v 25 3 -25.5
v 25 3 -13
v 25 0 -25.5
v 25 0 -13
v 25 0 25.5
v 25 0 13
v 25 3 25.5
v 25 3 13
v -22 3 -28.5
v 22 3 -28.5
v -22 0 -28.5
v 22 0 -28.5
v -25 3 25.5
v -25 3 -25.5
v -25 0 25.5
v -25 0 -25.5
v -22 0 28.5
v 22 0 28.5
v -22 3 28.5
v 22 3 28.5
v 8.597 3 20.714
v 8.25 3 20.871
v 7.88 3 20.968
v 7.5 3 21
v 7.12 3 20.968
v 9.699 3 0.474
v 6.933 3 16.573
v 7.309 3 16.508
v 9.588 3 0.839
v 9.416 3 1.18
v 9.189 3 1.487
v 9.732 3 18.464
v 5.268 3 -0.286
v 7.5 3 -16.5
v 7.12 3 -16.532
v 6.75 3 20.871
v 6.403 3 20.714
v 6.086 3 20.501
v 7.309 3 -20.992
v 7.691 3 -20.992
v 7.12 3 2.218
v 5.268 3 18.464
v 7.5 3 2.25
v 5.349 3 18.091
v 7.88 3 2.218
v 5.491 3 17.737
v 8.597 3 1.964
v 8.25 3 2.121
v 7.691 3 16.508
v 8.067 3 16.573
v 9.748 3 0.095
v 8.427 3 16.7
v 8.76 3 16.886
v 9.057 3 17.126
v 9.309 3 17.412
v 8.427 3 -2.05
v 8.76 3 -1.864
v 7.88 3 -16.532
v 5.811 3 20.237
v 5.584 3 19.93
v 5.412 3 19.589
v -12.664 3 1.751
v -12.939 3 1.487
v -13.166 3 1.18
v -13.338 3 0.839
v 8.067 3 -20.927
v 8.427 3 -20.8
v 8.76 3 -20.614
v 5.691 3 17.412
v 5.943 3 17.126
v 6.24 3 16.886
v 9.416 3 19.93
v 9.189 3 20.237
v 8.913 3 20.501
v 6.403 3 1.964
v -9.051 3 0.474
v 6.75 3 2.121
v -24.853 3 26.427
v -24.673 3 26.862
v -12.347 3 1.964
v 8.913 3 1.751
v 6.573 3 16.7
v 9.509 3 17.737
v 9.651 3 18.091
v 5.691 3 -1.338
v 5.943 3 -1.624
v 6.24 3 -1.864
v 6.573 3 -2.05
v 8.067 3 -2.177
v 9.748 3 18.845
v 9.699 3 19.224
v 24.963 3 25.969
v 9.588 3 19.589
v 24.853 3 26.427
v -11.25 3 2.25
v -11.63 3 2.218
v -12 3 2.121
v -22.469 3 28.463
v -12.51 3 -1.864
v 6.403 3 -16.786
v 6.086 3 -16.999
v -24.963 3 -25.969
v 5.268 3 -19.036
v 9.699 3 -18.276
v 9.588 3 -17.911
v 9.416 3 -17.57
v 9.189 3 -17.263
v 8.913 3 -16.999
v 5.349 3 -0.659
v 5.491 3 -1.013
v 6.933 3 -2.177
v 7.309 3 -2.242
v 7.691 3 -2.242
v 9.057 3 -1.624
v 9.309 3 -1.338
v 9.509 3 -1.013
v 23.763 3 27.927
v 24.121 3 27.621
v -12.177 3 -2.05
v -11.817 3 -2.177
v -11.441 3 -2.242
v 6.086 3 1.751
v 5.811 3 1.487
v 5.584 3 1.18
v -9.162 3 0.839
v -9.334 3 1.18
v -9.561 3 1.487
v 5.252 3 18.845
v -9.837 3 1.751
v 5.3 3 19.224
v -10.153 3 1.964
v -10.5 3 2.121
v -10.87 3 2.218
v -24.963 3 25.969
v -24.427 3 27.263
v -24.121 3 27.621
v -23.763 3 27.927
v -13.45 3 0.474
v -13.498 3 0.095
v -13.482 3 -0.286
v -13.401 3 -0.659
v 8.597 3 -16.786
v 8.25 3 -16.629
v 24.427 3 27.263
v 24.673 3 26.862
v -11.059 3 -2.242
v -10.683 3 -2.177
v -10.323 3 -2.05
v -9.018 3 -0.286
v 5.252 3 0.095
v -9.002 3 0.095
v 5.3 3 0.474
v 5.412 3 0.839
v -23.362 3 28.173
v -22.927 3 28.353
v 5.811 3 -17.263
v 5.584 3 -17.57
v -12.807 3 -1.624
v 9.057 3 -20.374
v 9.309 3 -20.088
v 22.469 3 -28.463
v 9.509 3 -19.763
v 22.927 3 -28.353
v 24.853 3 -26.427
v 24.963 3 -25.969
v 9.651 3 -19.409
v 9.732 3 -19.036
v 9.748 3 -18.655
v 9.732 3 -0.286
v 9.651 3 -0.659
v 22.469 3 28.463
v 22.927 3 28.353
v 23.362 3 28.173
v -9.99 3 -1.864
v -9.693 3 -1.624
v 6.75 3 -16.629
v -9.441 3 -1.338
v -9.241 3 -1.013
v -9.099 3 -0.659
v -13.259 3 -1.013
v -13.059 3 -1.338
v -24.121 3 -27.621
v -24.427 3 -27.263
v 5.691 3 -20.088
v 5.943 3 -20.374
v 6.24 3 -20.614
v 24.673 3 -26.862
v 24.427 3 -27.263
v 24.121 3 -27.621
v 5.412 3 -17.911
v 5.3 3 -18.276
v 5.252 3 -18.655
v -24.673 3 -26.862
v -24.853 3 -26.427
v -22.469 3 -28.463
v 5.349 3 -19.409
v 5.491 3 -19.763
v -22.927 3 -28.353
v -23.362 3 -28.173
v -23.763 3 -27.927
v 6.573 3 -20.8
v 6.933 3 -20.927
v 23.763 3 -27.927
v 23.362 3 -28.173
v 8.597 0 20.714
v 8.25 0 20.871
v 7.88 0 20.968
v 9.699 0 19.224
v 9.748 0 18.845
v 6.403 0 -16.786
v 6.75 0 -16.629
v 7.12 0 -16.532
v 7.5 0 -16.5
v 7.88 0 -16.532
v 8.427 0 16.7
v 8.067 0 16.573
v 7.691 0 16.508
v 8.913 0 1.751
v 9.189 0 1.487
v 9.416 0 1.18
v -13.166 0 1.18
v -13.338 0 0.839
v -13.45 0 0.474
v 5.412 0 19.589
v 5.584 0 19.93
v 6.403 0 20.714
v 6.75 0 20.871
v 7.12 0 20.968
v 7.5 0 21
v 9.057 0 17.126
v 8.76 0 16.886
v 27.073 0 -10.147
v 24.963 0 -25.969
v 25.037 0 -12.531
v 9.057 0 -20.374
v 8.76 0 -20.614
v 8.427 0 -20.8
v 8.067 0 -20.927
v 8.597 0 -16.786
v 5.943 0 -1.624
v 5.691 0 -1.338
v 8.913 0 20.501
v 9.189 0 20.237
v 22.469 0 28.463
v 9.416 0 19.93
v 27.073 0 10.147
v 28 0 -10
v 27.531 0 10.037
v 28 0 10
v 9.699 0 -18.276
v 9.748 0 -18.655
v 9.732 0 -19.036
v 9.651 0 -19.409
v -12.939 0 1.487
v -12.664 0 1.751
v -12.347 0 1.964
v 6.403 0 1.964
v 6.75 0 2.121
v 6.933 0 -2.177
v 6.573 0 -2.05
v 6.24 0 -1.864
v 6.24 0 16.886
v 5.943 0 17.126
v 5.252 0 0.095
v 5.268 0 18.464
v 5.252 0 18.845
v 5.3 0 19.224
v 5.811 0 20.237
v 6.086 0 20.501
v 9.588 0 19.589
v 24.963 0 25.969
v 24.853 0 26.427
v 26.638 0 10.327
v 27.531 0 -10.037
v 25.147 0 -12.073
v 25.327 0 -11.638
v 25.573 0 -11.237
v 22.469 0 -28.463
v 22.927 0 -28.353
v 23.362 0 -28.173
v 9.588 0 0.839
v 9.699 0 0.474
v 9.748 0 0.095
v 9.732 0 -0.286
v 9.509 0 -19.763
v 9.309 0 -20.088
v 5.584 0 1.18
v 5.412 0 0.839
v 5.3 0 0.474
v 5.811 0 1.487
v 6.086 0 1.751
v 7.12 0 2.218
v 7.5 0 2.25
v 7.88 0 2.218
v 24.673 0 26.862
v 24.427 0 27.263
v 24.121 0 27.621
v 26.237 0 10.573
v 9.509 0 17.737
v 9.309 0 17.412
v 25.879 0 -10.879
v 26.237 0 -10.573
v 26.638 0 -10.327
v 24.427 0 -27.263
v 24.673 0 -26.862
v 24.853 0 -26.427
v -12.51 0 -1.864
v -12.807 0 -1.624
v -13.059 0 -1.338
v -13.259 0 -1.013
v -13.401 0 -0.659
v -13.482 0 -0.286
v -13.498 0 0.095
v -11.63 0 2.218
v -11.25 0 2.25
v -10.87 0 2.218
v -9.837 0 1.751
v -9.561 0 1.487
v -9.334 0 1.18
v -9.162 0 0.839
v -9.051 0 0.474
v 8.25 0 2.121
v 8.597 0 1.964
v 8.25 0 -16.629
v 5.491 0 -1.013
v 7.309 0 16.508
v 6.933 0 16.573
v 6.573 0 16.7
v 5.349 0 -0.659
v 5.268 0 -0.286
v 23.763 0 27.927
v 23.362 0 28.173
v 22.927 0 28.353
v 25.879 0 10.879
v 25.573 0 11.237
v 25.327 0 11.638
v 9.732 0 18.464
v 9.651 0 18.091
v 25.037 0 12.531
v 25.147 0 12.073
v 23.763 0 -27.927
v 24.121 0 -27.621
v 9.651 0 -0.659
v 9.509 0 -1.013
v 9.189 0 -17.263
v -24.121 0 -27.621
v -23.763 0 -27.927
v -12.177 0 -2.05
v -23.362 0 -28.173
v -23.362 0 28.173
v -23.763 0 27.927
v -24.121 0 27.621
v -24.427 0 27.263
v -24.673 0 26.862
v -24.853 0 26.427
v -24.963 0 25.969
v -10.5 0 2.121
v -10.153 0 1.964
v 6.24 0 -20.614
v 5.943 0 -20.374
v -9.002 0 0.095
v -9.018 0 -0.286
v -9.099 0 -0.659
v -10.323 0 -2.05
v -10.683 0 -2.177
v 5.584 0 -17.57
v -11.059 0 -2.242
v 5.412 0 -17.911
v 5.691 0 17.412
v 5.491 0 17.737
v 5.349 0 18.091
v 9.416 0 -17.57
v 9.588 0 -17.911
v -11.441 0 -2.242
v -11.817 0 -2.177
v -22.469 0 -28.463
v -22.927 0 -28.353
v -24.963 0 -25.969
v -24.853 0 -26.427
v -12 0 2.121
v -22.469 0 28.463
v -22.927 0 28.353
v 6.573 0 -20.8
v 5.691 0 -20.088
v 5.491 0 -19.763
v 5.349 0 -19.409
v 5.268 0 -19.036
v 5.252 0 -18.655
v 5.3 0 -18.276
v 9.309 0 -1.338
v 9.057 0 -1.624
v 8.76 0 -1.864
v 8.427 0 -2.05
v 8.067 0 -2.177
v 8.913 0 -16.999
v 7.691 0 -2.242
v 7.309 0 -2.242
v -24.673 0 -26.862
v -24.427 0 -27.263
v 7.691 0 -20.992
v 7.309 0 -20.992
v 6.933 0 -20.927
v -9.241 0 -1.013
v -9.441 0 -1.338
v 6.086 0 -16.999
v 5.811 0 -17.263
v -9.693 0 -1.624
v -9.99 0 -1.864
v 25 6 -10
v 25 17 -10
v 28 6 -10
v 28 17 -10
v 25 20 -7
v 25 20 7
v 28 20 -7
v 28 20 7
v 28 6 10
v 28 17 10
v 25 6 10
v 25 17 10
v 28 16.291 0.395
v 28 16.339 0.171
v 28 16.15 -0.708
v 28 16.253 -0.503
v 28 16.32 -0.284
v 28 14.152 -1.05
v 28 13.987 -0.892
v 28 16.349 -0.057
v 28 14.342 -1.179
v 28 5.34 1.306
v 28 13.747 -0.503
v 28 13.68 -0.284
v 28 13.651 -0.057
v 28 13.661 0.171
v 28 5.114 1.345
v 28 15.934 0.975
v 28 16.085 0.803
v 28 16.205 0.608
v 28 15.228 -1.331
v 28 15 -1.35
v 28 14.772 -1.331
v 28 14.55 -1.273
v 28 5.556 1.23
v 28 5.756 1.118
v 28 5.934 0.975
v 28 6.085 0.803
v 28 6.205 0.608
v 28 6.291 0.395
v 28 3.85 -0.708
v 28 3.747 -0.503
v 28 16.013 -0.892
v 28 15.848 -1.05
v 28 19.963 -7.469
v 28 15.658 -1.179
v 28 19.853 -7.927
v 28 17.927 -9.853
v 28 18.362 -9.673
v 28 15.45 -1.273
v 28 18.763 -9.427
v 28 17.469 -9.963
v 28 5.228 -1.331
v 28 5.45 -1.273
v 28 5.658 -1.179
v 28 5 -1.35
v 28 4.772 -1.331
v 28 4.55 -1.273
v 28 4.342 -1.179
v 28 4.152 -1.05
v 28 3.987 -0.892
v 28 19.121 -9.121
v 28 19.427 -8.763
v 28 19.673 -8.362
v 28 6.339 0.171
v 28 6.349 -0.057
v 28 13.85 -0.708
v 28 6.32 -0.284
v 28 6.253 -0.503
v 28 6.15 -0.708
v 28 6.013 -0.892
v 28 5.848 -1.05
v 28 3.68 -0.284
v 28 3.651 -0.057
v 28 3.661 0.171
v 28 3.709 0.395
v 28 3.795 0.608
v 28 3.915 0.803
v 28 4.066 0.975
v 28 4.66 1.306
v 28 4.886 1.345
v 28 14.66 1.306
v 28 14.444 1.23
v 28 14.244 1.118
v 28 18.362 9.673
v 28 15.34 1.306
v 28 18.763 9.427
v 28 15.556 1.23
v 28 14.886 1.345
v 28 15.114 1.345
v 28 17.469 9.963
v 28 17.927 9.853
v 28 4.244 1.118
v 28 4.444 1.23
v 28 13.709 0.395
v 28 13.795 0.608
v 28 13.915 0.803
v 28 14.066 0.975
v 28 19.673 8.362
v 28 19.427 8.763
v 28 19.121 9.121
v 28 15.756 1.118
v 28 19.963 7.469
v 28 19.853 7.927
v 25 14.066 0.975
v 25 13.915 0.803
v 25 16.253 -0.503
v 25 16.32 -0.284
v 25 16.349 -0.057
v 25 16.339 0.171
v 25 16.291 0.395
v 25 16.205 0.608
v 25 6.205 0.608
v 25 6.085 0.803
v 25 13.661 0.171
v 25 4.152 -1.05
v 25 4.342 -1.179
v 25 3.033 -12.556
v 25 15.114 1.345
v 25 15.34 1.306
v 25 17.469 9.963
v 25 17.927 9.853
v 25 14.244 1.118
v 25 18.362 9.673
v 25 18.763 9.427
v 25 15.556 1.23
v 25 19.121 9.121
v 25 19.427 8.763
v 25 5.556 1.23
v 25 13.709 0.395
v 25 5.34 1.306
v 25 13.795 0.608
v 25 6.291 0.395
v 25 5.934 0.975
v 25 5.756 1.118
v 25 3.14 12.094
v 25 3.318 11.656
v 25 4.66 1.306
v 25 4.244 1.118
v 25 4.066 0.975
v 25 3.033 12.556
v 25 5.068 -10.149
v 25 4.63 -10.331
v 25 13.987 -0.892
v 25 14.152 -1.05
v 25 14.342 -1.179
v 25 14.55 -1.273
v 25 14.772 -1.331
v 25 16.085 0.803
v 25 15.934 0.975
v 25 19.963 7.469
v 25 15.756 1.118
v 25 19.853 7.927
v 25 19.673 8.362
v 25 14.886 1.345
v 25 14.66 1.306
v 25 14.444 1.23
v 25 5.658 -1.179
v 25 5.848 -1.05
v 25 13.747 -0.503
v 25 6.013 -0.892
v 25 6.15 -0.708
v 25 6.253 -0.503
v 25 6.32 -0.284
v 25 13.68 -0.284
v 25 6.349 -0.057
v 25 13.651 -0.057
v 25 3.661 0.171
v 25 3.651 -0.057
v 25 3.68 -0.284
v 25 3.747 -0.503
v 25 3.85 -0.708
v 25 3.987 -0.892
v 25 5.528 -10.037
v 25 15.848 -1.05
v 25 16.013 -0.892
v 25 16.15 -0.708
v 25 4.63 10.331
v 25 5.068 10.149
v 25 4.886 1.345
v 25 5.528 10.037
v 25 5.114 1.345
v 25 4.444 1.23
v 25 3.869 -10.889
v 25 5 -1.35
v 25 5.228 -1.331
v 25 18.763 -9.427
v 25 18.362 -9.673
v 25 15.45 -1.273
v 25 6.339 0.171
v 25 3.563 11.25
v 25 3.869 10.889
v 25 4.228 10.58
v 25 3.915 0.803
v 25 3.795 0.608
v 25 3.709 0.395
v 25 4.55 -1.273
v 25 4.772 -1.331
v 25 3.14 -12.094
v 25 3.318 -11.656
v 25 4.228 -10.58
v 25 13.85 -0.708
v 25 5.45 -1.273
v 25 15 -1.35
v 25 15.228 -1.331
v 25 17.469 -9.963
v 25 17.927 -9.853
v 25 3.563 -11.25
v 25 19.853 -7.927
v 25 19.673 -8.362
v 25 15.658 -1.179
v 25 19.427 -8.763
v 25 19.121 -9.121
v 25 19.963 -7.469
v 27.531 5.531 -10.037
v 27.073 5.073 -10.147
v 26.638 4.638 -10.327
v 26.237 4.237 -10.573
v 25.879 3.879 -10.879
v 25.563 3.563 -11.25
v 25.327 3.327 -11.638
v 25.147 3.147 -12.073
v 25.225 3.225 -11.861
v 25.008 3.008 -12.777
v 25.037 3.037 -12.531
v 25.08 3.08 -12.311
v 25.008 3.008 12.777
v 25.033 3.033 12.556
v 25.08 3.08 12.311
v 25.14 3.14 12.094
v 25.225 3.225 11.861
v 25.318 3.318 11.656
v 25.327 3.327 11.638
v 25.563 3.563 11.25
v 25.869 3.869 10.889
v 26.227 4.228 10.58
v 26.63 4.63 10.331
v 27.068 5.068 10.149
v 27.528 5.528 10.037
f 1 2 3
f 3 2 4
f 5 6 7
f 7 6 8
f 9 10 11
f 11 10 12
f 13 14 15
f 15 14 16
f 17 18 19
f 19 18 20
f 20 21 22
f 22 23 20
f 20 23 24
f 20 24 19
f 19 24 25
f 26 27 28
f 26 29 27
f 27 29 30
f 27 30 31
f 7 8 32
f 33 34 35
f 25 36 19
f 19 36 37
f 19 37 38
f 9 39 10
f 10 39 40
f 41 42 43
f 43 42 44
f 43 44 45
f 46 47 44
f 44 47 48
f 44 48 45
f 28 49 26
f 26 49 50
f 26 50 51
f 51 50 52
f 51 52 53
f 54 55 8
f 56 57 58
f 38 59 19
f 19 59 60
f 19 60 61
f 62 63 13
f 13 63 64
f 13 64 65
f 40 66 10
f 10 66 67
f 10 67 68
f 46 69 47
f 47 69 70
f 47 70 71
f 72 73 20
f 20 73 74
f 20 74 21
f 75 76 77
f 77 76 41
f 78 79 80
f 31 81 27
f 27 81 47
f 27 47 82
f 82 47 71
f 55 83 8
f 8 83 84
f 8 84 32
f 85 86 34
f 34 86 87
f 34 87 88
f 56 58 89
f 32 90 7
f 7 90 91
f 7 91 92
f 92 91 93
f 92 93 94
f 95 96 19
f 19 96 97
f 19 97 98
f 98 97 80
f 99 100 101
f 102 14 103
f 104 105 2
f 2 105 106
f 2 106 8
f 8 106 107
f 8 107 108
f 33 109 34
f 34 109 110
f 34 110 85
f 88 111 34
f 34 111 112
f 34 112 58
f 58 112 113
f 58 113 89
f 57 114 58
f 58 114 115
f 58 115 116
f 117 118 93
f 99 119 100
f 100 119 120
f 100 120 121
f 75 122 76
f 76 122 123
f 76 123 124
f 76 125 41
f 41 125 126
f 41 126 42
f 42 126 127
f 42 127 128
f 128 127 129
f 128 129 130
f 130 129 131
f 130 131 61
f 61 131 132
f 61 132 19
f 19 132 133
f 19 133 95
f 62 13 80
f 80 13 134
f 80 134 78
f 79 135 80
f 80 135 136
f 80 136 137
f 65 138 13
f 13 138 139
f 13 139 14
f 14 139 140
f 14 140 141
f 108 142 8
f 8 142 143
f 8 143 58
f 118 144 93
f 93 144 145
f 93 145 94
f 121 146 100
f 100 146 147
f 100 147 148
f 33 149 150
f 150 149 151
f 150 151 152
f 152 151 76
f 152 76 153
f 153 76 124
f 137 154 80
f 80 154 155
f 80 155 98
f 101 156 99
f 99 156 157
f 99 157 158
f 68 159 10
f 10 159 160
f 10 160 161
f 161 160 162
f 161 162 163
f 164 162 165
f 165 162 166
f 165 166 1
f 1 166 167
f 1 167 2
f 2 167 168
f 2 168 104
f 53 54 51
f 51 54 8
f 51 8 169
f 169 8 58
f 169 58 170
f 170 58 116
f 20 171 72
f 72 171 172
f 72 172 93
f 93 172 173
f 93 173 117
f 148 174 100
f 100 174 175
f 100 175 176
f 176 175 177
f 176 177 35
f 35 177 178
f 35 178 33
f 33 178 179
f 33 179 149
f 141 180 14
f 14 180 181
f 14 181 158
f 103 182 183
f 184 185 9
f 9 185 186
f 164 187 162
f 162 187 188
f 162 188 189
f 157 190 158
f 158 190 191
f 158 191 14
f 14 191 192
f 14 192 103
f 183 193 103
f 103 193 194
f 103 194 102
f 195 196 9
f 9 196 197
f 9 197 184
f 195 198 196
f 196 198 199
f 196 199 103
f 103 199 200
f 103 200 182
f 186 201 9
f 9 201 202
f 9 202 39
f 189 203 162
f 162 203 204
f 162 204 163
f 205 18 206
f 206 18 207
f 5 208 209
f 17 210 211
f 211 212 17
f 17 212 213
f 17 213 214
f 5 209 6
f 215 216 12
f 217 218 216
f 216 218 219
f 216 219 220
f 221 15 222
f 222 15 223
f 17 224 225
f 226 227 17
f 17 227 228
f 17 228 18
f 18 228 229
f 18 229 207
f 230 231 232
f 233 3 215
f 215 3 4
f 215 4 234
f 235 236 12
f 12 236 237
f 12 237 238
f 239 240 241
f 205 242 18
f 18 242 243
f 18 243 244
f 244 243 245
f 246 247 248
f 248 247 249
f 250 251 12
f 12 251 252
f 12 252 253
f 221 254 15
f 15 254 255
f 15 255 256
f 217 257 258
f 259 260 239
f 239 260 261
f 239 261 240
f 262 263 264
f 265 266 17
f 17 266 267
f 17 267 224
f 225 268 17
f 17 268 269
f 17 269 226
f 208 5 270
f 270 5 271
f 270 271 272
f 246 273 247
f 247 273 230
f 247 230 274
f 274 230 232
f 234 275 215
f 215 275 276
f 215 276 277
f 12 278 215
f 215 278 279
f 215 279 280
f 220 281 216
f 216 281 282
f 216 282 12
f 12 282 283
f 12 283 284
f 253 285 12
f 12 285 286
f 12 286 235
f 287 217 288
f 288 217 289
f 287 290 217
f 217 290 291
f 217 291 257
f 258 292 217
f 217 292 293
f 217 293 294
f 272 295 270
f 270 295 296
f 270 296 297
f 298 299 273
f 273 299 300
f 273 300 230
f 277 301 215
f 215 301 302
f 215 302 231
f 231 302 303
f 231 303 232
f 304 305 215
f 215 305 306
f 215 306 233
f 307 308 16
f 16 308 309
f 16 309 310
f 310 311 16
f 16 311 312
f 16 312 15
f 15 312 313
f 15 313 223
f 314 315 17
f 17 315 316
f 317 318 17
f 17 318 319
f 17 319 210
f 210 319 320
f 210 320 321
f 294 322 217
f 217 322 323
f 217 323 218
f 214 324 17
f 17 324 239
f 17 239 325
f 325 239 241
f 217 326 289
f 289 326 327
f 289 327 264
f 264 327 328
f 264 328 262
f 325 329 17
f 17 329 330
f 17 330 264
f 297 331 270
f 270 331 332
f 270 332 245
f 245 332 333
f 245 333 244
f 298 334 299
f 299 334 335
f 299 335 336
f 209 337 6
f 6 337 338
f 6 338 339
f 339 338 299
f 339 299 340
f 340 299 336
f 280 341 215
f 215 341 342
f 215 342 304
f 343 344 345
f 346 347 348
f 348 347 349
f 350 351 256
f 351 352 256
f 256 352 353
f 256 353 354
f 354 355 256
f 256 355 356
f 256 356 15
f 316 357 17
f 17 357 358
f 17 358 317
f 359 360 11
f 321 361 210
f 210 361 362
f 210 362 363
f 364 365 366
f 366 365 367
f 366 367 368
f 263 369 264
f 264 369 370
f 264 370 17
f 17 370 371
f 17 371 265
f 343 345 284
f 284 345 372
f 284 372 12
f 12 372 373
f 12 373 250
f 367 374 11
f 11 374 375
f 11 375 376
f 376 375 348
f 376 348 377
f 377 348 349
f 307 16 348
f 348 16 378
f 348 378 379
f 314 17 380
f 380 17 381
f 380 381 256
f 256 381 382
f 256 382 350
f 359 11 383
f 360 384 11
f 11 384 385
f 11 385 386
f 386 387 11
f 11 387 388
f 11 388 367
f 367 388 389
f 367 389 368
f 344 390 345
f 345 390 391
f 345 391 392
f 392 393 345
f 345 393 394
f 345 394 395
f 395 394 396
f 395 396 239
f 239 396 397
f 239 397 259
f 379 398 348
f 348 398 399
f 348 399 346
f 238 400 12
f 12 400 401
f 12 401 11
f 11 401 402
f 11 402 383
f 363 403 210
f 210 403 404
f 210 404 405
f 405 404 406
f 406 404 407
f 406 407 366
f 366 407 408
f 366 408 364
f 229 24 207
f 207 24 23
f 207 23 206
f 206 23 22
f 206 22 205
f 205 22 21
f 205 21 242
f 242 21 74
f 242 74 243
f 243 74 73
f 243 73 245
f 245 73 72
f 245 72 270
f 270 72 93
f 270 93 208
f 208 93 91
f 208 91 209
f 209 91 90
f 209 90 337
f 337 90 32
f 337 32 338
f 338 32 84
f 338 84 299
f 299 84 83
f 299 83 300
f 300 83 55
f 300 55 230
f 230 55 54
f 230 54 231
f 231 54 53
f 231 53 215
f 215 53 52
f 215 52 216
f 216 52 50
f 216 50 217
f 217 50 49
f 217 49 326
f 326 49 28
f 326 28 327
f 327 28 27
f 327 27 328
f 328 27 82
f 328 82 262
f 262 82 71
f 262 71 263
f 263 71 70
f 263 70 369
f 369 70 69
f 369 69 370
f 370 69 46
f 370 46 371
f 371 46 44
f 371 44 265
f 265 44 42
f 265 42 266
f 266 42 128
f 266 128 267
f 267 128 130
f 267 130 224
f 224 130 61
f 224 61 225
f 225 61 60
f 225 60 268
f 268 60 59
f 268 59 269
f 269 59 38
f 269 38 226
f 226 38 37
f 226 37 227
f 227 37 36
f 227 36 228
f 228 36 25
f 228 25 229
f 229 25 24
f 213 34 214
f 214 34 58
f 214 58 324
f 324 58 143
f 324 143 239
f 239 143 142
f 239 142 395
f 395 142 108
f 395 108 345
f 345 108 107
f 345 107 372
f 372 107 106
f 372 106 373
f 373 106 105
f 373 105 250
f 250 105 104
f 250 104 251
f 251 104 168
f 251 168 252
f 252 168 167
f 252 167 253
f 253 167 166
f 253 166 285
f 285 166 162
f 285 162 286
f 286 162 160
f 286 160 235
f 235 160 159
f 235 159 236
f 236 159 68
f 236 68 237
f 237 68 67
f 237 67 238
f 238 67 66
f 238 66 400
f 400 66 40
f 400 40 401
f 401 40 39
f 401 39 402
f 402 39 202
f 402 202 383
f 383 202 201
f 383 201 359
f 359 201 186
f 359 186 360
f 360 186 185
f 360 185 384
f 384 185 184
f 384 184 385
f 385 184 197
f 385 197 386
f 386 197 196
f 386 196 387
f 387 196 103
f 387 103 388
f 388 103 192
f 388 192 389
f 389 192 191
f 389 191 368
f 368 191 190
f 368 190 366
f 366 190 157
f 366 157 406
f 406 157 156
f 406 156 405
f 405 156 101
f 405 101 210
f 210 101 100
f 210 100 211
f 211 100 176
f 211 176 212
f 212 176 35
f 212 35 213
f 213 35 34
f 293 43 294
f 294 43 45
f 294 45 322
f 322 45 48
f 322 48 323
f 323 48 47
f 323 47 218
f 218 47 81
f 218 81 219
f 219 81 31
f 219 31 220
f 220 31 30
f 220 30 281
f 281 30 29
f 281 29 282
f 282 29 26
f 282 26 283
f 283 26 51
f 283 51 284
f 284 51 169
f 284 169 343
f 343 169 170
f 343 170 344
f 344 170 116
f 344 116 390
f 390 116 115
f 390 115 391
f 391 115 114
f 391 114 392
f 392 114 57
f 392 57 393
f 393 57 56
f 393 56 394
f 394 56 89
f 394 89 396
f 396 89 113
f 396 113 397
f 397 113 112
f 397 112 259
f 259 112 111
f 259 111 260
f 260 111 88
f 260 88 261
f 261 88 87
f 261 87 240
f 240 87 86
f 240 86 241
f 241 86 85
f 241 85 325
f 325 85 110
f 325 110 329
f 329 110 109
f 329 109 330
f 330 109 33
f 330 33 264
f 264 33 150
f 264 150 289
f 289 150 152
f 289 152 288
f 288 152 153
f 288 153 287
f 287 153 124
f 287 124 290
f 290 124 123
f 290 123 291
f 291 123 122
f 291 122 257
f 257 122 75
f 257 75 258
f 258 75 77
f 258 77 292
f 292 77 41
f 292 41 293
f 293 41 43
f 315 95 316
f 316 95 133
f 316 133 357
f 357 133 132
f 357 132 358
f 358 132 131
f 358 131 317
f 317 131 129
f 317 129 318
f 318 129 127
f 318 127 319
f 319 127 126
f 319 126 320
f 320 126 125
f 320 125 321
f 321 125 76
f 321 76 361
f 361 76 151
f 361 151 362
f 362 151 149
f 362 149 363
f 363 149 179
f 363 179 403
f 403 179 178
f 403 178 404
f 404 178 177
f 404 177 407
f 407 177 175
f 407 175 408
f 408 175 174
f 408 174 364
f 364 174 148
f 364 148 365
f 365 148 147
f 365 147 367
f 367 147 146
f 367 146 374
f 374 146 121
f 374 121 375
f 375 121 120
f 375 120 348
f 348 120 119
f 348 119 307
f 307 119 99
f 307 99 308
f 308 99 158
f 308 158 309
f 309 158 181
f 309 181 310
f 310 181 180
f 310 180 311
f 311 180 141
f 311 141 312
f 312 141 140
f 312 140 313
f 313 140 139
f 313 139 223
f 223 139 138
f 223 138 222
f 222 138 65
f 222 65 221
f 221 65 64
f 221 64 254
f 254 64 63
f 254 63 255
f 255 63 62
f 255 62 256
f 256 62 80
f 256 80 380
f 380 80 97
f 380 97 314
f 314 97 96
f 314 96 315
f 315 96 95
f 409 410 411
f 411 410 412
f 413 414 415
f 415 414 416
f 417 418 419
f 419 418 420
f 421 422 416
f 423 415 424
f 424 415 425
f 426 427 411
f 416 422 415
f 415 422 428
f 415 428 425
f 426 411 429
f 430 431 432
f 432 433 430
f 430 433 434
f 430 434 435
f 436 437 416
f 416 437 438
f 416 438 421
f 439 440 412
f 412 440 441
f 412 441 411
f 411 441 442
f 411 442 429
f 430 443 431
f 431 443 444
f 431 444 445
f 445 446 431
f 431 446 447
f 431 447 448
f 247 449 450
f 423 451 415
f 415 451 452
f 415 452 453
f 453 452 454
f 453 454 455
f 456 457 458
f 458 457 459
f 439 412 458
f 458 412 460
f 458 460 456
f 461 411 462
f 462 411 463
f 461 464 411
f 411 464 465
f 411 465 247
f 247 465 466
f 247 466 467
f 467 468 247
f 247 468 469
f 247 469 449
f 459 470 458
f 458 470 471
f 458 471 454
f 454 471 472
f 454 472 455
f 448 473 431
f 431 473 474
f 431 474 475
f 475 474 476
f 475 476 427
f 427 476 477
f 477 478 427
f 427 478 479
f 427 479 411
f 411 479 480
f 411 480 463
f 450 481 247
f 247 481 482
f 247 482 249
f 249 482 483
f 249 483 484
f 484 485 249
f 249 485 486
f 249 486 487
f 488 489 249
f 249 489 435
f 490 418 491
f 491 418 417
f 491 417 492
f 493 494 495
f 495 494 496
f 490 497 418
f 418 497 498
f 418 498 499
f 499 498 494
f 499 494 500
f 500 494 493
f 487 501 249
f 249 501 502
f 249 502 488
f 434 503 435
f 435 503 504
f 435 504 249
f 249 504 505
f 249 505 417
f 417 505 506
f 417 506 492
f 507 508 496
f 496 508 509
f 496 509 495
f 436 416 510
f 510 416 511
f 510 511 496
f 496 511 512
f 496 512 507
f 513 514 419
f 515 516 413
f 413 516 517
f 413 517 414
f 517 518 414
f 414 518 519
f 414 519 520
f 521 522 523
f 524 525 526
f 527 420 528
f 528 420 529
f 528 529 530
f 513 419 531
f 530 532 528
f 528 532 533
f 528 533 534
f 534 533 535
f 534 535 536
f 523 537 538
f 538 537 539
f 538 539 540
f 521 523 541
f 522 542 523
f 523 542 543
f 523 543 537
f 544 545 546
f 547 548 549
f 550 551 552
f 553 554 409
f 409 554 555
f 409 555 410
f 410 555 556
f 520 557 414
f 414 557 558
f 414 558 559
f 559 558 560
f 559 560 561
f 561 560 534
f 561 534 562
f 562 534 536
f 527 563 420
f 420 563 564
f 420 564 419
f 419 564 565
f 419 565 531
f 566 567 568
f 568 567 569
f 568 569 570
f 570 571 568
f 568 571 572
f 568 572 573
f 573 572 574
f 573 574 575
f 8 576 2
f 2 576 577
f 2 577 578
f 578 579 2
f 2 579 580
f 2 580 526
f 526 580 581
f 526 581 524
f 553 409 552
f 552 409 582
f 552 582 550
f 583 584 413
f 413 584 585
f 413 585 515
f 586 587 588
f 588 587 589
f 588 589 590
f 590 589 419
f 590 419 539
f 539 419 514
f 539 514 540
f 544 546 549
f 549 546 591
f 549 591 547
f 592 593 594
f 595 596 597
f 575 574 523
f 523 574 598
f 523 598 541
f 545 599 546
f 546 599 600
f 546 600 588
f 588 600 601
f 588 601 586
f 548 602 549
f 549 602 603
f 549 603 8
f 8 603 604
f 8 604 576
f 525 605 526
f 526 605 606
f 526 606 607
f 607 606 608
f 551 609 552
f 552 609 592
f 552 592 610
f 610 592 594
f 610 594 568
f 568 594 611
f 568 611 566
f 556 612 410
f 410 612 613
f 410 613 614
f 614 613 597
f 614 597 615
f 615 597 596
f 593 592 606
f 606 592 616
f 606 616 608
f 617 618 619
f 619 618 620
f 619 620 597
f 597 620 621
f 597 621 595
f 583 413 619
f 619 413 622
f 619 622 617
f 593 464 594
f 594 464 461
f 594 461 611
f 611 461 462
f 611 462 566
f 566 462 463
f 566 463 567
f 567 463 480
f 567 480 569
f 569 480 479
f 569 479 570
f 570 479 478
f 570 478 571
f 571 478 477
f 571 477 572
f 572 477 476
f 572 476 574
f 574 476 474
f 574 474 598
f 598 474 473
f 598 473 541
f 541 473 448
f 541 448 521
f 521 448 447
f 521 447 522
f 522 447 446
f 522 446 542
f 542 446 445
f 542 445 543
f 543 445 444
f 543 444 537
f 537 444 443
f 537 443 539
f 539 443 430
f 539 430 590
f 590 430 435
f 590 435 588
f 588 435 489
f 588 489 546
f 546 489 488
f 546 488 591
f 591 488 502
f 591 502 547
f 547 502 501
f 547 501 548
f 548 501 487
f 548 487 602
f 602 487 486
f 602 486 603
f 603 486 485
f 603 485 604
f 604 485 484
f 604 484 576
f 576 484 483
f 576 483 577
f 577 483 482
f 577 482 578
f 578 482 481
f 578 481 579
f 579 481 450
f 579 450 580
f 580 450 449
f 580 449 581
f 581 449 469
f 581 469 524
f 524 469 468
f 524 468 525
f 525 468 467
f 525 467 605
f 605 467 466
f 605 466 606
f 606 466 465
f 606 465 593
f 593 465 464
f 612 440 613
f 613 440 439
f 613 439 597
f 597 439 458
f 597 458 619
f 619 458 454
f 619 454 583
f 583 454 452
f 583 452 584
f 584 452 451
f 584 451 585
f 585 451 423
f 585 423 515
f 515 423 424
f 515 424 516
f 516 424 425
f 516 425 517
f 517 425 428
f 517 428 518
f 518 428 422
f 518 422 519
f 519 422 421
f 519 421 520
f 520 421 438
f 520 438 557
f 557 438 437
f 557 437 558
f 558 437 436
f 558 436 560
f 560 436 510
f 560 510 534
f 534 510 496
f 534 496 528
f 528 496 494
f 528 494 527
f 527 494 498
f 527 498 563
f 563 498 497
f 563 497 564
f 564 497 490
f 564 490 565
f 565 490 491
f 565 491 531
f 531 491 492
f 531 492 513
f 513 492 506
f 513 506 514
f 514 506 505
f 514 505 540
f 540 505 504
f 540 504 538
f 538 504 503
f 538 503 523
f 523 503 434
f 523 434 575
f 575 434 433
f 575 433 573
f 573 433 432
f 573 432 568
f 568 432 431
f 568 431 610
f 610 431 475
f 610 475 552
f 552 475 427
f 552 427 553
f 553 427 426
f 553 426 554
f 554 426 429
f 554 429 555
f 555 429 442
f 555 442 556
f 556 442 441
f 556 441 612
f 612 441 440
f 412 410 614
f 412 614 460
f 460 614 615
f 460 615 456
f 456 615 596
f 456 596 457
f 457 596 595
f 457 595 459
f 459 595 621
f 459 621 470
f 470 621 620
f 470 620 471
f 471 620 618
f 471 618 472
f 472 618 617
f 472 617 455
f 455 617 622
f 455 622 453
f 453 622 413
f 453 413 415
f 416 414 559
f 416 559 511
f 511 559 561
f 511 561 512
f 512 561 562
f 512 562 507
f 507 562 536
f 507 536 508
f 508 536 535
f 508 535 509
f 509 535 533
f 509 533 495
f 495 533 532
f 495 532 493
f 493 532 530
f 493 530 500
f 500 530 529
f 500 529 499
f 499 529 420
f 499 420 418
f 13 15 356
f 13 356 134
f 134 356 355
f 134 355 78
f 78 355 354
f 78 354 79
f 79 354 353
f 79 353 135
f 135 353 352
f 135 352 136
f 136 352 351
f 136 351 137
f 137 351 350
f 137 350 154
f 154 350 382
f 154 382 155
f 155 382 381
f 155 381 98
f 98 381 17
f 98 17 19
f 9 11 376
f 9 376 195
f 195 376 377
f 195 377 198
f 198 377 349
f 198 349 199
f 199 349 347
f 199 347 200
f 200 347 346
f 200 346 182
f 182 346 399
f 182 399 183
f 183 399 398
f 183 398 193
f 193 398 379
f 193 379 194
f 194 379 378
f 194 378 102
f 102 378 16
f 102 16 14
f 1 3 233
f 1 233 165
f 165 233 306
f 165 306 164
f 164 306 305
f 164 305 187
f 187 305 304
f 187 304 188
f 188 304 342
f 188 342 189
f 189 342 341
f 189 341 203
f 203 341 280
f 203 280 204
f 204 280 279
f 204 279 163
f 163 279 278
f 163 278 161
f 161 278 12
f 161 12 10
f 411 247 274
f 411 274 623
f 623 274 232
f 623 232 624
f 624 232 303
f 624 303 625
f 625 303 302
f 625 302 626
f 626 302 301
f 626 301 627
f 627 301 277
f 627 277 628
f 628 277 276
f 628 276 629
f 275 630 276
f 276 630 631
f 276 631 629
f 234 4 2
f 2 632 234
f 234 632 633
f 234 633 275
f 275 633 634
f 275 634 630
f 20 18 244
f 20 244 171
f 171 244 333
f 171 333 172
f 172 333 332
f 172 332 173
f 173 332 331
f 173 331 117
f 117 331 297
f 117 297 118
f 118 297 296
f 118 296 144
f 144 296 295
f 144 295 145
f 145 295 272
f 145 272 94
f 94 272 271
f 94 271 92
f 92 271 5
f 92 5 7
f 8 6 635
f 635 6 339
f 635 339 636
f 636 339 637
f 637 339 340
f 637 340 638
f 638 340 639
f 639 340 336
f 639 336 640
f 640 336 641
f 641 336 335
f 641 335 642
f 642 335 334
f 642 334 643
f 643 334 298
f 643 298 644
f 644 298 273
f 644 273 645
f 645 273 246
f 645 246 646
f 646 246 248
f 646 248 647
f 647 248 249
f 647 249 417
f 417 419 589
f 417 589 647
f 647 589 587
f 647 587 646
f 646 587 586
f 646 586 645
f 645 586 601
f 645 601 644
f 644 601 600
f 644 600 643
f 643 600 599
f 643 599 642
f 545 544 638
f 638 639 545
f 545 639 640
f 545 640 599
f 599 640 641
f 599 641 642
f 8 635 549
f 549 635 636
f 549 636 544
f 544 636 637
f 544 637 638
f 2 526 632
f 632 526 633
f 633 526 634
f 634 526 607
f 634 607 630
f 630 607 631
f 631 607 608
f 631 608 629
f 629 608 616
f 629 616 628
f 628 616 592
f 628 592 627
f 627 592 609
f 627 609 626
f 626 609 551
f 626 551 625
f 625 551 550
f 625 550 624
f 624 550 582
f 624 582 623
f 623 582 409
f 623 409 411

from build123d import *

# Parameters (mm, degrees)
SKETCH1_W                      = 50
SKETCH1_H                      = 57
BOSS_EXTRUDE1_DEPTH            = 3
F_4_5_4_5_DIAMETER_HOLE1_D     = 4.5
F_4_5_4_5_DIAMETER_HOLE1_DEPTH = 15
F_4_5_4_5_DIAMETER_HOLE1_TIP   = 1.351936393
SKETCH4_W                      = 20
SKETCH4_H                      = 20
BOSS_EXTRUDE2_DEPTH            = 3
F_2_7_2_7_DIAMETER_HOLE1_D     = 2.7
F_2_7_2_7_DIAMETER_HOLE1_DEPTH = 15
F_2_7_2_7_DIAMETER_HOLE1_TIP   = 0.811161836
FILLET1_R                      = 3
FILLET2_R                      = 3


# Some blends are built 0.0001 mm under size
with BuildPart() as part:
    # Sketch1 → Boss-Extrude1 (new body)
    with BuildSketch(Plane(origin=(0, 0, 0), x_dir=(1, 0, 0), z_dir=(0, 1, 0))):
        Rectangle(SKETCH1_W, SKETCH1_H)
    extrude(amount=BOSS_EXTRUDE1_DEPTH)

    # Ø4.5 (4.5) Diameter Hole1
    with Locations(Plane(origin=(0, 3, 0), x_dir=(1, 0, 0), z_dir=(0, 1, 0))):
        with Locations((-11.25, 0), (7.5, 0), (7.5, 18.75), (7.5, -18.75)):
            Hole(F_4_5_4_5_DIAMETER_HOLE1_D / 2, depth=F_4_5_4_5_DIAMETER_HOLE1_DEPTH)
            with Locations((0, 0, -(F_4_5_4_5_DIAMETER_HOLE1_DEPTH + F_4_5_4_5_DIAMETER_HOLE1_TIP / 2))):  # 118° drill point
                Cone(0, F_4_5_4_5_DIAMETER_HOLE1_D / 2, F_4_5_4_5_DIAMETER_HOLE1_TIP, mode=Mode.SUBTRACT)

    # Sketch4 → Boss-Extrude2 (add)
    with BuildSketch(Plane(origin=(25, 0, 0), x_dir=(0, 0, -1), z_dir=(1, 0, 0))):
        with Locations((0, 10)):
            Rectangle(SKETCH4_W, SKETCH4_H)
    extrude(amount=BOSS_EXTRUDE2_DEPTH)

    # Ø2.7 (2.7) Diameter Hole1
    with Locations(Plane(origin=(28, 0, 0), x_dir=(0, 0, -1), z_dir=(1, 0, 0))):
        with Locations((0, 5), (0, 15)):
            Hole(F_2_7_2_7_DIAMETER_HOLE1_D / 2, depth=F_2_7_2_7_DIAMETER_HOLE1_DEPTH)
            with Locations((0, 0, -(F_2_7_2_7_DIAMETER_HOLE1_DEPTH + F_2_7_2_7_DIAMETER_HOLE1_TIP / 2))):  # 118° drill point
                Cone(0, F_2_7_2_7_DIAMETER_HOLE1_D / 2, F_2_7_2_7_DIAMETER_HOLE1_TIP, mode=Mode.SUBTRACT)

    # Fillet1
    fillet1_edges = [part.edges().sort_by_distance(p)[0] for p in [
        (-25, 1.5, 28.5),
        (-25, 1.5, -28.5),
        (25, 1.5, -28.5),
        (25, 1.5, -10),
        (25, 1.5, 28.5),
        (25, 1.5, 10),
        (26.5, 20, -10),
        (26.5, 20, 10),
    ]]
    fillet(fillet1_edges, radius=FILLET1_R - 0.0001)  # a hair under: the kernel refuses the full size

    # Fillet2
    # the kernel refuses this fillet: 3 mm, written as the material it adds along each edge
    with BuildSketch(Plane(origin=(25, 3, 10), x_dir=(0, 0, 1), z_dir=(1, 0, 0))) as fillet2_piece_1_section:
        with BuildLine():
            CenterArc((FILLET2_R, -FILLET2_R), FILLET2_R, 90, 90)
            Line((0, -FILLET2_R), (0, 0))
            Line((0, 0), (FILLET2_R, 0))
        make_face()
    fillet2_piece_1 = extrude(amount=10.4999, mode=Mode.PRIVATE)
    fillet2_piece_1 = split(fillet2_piece_1, bisect_by=Plane(origin=(28, 3.856738297, 10.392281227), z_dir=(-1, 0, 0)), keep=Keep.TOP, mode=Mode.PRIVATE)
    fillet2_piece_1 = fillet2_piece_1 - Plane(origin=(27.9999, 3.856738297, 12.9999), x_dir=(0, 0, -1), z_dir=(0, 1, 0)) * Cylinder(2.9999, 33, mode=Mode.PRIVATE)
    add(fillet2_piece_1)
    with BuildSketch(Plane(origin=(25, 3, -10), x_dir=(0, 0, -1), z_dir=(1, 0, 0))) as fillet2_piece_2_section:
        with BuildLine():
            CenterArc((FILLET2_R, FILLET2_R), FILLET2_R, 180, 90)
            Line((0, FILLET2_R), (0, 0))
            Line((0, 0), (FILLET2_R, 0))
        make_face()
    fillet2_piece_2 = extrude(amount=10.4999, mode=Mode.PRIVATE)
    fillet2_piece_2 = fillet2_piece_2 - Plane(origin=(27.9999, 3.856737678, -12.9999), x_dir=(-1, 0, 0), z_dir=(0, -1, 0)) * Cylinder(2.9999, 33, mode=Mode.PRIVATE)
    fillet2_piece_2 = split(fillet2_piece_2, bisect_by=Plane(origin=(28, 3.856737678, -10.392309052), z_dir=(-1, 0, 0)), keep=Keep.TOP, mode=Mode.PRIVATE)
    add(fillet2_piece_2)


solid = part.part
